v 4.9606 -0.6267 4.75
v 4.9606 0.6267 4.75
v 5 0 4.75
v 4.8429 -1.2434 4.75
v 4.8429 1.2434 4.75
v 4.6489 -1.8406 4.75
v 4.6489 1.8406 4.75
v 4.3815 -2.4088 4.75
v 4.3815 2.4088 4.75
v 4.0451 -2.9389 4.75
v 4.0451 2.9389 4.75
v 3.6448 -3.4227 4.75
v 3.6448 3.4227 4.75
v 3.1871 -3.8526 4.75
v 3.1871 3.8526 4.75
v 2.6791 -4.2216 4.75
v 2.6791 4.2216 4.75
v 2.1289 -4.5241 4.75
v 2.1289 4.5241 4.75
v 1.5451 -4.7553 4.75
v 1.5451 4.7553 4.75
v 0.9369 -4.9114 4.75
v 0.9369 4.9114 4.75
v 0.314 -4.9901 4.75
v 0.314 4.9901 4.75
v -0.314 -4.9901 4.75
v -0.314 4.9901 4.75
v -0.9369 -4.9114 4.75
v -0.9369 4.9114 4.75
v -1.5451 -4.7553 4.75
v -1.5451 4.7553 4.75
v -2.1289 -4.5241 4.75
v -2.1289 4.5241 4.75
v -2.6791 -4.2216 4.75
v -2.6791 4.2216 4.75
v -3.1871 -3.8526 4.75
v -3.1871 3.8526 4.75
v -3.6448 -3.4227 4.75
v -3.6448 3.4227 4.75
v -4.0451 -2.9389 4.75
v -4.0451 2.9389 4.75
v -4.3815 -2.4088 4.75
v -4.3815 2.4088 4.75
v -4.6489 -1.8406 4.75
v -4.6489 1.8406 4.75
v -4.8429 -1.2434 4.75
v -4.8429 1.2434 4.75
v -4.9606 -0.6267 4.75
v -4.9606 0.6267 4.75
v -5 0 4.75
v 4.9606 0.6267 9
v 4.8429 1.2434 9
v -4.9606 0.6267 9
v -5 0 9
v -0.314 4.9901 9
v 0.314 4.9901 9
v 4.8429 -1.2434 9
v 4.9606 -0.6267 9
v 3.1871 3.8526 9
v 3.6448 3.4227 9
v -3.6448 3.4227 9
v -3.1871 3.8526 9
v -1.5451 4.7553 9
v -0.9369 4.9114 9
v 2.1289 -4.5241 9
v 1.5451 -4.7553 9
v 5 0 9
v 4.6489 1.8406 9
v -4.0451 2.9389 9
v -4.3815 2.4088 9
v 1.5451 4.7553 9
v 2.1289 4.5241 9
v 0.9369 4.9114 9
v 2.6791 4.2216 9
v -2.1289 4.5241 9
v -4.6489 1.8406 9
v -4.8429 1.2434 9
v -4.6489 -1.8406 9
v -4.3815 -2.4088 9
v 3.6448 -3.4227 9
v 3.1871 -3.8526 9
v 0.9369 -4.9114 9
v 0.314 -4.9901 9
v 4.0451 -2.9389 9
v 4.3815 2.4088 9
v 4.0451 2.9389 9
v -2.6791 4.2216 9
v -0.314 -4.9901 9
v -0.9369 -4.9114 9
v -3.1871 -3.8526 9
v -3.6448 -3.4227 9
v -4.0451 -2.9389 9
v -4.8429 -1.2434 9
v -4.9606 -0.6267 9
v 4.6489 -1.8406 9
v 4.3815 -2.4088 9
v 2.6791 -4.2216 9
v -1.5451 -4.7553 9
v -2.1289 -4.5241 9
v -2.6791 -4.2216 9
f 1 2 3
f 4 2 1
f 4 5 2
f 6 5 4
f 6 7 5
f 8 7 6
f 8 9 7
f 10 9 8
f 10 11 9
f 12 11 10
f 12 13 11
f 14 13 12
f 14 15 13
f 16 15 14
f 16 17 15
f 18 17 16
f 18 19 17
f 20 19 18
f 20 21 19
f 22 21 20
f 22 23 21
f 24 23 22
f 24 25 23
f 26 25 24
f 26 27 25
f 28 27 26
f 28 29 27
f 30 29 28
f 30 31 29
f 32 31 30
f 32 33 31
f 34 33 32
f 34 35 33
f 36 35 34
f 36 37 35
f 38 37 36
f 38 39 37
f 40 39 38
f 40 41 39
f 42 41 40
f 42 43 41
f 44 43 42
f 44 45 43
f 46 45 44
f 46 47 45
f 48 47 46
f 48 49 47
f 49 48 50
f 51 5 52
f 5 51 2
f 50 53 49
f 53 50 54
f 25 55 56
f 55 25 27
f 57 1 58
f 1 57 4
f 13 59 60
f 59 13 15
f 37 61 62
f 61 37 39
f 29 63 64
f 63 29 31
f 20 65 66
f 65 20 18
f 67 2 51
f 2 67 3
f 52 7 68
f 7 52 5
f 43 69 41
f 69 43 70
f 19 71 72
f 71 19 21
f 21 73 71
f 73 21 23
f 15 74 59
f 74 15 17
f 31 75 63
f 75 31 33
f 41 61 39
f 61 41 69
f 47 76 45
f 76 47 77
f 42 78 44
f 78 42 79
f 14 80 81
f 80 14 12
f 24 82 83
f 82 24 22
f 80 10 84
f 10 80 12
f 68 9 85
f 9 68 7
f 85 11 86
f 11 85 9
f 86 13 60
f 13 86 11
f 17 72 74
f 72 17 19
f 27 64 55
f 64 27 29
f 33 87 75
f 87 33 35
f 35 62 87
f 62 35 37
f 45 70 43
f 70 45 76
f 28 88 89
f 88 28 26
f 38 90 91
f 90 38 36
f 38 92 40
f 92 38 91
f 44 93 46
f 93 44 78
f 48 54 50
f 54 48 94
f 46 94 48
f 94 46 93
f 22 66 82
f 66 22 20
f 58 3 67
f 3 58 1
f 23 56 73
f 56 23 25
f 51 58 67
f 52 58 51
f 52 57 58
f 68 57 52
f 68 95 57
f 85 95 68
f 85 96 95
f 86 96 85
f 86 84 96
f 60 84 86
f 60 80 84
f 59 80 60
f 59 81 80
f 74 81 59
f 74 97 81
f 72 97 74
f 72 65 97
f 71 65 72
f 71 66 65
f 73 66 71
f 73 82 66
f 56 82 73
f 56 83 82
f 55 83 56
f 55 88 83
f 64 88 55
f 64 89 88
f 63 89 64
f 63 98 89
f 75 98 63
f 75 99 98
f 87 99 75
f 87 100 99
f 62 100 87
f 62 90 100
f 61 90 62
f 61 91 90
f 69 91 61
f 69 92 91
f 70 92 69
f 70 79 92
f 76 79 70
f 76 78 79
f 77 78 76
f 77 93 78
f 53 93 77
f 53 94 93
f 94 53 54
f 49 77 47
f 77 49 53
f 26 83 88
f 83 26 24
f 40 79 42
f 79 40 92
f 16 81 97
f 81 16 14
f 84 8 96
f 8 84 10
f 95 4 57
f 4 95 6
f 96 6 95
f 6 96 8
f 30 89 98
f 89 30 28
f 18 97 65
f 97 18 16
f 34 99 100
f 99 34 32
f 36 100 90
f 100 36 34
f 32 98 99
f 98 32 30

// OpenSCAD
$fn = 50;


difference() {
	union() {
		hull() {
			cylinder(h = 9, r = 5);
			cylinder(h = 9, r = 5);
			cylinder(h = 9, r = 5);
			cylinder(h = 9, r = 5);
		}
	}
	union() {
		translate(v = [0, 0, 0]) {
			rotate(a = [0, 0, 0]) {
				difference() {
					union() {
						linear_extrude(height = 4.7500000000) {
							polygon(points = [[5.7892500000, 0.0000000000], [2.8946250000, 5.0136375689], [-2.8946250000, 5.0136375689], [-5.7892500000, 0.0000000000], [-2.8946250000, -5.0136375689], [2.8946250000, -5.0136375689]]);
						}
					}
					union();
				}
			}
		}
	}
}
